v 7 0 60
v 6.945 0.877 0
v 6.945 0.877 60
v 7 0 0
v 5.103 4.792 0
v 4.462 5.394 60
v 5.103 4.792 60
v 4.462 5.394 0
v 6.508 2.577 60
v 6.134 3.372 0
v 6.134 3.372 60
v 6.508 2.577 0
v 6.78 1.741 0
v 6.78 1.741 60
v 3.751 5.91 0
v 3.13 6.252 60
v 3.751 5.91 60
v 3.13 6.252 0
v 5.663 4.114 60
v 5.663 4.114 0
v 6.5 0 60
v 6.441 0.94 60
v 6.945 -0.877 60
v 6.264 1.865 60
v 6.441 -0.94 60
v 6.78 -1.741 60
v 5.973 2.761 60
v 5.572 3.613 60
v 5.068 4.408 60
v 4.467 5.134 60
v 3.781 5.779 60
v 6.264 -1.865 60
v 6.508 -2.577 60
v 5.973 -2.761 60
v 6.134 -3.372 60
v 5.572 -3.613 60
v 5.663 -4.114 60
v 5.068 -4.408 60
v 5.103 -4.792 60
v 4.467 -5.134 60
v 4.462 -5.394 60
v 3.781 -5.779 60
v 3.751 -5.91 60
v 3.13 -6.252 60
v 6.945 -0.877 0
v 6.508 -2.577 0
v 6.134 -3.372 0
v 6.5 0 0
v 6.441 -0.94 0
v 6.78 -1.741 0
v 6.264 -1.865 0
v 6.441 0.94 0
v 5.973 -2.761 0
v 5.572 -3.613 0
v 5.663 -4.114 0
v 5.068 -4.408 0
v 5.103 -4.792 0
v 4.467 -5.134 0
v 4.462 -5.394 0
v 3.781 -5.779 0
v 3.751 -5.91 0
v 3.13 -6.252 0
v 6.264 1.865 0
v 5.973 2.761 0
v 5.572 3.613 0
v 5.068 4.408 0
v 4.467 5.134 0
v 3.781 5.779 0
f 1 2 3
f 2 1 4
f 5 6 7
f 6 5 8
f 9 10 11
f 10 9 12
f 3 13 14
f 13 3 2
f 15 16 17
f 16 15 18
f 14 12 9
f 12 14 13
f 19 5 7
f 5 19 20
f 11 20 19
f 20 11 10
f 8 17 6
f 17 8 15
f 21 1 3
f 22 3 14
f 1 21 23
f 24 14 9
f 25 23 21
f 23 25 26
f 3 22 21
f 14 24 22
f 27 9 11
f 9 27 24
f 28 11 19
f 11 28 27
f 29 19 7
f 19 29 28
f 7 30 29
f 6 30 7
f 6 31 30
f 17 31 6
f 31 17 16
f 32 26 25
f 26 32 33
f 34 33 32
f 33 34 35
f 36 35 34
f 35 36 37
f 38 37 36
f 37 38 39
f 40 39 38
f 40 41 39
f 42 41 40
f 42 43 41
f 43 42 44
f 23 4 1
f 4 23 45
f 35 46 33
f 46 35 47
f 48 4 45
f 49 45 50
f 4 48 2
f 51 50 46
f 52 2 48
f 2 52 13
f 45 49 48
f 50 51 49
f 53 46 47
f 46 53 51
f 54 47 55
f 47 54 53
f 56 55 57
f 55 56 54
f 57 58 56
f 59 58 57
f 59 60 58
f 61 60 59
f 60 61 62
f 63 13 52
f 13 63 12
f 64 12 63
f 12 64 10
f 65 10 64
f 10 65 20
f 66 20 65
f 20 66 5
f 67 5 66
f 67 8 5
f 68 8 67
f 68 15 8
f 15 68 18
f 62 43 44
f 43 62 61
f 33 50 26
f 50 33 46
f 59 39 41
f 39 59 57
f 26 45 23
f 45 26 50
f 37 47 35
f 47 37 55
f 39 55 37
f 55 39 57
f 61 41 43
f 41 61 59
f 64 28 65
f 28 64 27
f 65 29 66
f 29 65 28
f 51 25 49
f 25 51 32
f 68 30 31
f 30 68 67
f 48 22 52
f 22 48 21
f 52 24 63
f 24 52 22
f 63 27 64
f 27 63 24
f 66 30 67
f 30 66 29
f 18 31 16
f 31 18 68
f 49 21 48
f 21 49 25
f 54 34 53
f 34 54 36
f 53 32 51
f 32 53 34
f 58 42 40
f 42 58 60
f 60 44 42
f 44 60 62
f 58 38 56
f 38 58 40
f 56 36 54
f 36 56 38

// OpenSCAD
$fn = 50;


difference() {
	union() {
		cylinder(h = 60, r = 7.0000000000);
		translate(v = [-4.0000000000, 0, 0]) {
			cylinder(h = 60, r = 7.0000000000);
		}
	}
	union() {
		cylinder(h = 60, r = 3.2500000000);
		cylinder(h = 60, r = 1.8000000000);
		cylinder(h = 60, r = 1.8000000000);
		cylinder(h = 60, r = 1.8000000000);
		translate(v = [-8.5000000000, 0, 0]) {
			hull() {
				translate(v = [-3.7500000000, 0.0000000000, 0]) {
					cylinder(h = 60, r = 7.5000000000);
				}
				translate(v = [3.7500000000, 0.0000000000, 0]) {
					cylinder(h = 60, r = 7.5000000000);
				}
				translate(v = [-3.7500000000, -0.0000000000, 0]) {
					cylinder(h = 60, r = 7.5000000000);
				}
				translate(v = [3.7500000000, -0.0000000000, 0]) {
					cylinder(h = 60, r = 7.5000000000);
				}
			}
		}
		translate(v = [-1.0000000000, 0, 0.0000000000]) {
			cylinder(h = 60, r = 7.5000000000);
		}
	}
}
